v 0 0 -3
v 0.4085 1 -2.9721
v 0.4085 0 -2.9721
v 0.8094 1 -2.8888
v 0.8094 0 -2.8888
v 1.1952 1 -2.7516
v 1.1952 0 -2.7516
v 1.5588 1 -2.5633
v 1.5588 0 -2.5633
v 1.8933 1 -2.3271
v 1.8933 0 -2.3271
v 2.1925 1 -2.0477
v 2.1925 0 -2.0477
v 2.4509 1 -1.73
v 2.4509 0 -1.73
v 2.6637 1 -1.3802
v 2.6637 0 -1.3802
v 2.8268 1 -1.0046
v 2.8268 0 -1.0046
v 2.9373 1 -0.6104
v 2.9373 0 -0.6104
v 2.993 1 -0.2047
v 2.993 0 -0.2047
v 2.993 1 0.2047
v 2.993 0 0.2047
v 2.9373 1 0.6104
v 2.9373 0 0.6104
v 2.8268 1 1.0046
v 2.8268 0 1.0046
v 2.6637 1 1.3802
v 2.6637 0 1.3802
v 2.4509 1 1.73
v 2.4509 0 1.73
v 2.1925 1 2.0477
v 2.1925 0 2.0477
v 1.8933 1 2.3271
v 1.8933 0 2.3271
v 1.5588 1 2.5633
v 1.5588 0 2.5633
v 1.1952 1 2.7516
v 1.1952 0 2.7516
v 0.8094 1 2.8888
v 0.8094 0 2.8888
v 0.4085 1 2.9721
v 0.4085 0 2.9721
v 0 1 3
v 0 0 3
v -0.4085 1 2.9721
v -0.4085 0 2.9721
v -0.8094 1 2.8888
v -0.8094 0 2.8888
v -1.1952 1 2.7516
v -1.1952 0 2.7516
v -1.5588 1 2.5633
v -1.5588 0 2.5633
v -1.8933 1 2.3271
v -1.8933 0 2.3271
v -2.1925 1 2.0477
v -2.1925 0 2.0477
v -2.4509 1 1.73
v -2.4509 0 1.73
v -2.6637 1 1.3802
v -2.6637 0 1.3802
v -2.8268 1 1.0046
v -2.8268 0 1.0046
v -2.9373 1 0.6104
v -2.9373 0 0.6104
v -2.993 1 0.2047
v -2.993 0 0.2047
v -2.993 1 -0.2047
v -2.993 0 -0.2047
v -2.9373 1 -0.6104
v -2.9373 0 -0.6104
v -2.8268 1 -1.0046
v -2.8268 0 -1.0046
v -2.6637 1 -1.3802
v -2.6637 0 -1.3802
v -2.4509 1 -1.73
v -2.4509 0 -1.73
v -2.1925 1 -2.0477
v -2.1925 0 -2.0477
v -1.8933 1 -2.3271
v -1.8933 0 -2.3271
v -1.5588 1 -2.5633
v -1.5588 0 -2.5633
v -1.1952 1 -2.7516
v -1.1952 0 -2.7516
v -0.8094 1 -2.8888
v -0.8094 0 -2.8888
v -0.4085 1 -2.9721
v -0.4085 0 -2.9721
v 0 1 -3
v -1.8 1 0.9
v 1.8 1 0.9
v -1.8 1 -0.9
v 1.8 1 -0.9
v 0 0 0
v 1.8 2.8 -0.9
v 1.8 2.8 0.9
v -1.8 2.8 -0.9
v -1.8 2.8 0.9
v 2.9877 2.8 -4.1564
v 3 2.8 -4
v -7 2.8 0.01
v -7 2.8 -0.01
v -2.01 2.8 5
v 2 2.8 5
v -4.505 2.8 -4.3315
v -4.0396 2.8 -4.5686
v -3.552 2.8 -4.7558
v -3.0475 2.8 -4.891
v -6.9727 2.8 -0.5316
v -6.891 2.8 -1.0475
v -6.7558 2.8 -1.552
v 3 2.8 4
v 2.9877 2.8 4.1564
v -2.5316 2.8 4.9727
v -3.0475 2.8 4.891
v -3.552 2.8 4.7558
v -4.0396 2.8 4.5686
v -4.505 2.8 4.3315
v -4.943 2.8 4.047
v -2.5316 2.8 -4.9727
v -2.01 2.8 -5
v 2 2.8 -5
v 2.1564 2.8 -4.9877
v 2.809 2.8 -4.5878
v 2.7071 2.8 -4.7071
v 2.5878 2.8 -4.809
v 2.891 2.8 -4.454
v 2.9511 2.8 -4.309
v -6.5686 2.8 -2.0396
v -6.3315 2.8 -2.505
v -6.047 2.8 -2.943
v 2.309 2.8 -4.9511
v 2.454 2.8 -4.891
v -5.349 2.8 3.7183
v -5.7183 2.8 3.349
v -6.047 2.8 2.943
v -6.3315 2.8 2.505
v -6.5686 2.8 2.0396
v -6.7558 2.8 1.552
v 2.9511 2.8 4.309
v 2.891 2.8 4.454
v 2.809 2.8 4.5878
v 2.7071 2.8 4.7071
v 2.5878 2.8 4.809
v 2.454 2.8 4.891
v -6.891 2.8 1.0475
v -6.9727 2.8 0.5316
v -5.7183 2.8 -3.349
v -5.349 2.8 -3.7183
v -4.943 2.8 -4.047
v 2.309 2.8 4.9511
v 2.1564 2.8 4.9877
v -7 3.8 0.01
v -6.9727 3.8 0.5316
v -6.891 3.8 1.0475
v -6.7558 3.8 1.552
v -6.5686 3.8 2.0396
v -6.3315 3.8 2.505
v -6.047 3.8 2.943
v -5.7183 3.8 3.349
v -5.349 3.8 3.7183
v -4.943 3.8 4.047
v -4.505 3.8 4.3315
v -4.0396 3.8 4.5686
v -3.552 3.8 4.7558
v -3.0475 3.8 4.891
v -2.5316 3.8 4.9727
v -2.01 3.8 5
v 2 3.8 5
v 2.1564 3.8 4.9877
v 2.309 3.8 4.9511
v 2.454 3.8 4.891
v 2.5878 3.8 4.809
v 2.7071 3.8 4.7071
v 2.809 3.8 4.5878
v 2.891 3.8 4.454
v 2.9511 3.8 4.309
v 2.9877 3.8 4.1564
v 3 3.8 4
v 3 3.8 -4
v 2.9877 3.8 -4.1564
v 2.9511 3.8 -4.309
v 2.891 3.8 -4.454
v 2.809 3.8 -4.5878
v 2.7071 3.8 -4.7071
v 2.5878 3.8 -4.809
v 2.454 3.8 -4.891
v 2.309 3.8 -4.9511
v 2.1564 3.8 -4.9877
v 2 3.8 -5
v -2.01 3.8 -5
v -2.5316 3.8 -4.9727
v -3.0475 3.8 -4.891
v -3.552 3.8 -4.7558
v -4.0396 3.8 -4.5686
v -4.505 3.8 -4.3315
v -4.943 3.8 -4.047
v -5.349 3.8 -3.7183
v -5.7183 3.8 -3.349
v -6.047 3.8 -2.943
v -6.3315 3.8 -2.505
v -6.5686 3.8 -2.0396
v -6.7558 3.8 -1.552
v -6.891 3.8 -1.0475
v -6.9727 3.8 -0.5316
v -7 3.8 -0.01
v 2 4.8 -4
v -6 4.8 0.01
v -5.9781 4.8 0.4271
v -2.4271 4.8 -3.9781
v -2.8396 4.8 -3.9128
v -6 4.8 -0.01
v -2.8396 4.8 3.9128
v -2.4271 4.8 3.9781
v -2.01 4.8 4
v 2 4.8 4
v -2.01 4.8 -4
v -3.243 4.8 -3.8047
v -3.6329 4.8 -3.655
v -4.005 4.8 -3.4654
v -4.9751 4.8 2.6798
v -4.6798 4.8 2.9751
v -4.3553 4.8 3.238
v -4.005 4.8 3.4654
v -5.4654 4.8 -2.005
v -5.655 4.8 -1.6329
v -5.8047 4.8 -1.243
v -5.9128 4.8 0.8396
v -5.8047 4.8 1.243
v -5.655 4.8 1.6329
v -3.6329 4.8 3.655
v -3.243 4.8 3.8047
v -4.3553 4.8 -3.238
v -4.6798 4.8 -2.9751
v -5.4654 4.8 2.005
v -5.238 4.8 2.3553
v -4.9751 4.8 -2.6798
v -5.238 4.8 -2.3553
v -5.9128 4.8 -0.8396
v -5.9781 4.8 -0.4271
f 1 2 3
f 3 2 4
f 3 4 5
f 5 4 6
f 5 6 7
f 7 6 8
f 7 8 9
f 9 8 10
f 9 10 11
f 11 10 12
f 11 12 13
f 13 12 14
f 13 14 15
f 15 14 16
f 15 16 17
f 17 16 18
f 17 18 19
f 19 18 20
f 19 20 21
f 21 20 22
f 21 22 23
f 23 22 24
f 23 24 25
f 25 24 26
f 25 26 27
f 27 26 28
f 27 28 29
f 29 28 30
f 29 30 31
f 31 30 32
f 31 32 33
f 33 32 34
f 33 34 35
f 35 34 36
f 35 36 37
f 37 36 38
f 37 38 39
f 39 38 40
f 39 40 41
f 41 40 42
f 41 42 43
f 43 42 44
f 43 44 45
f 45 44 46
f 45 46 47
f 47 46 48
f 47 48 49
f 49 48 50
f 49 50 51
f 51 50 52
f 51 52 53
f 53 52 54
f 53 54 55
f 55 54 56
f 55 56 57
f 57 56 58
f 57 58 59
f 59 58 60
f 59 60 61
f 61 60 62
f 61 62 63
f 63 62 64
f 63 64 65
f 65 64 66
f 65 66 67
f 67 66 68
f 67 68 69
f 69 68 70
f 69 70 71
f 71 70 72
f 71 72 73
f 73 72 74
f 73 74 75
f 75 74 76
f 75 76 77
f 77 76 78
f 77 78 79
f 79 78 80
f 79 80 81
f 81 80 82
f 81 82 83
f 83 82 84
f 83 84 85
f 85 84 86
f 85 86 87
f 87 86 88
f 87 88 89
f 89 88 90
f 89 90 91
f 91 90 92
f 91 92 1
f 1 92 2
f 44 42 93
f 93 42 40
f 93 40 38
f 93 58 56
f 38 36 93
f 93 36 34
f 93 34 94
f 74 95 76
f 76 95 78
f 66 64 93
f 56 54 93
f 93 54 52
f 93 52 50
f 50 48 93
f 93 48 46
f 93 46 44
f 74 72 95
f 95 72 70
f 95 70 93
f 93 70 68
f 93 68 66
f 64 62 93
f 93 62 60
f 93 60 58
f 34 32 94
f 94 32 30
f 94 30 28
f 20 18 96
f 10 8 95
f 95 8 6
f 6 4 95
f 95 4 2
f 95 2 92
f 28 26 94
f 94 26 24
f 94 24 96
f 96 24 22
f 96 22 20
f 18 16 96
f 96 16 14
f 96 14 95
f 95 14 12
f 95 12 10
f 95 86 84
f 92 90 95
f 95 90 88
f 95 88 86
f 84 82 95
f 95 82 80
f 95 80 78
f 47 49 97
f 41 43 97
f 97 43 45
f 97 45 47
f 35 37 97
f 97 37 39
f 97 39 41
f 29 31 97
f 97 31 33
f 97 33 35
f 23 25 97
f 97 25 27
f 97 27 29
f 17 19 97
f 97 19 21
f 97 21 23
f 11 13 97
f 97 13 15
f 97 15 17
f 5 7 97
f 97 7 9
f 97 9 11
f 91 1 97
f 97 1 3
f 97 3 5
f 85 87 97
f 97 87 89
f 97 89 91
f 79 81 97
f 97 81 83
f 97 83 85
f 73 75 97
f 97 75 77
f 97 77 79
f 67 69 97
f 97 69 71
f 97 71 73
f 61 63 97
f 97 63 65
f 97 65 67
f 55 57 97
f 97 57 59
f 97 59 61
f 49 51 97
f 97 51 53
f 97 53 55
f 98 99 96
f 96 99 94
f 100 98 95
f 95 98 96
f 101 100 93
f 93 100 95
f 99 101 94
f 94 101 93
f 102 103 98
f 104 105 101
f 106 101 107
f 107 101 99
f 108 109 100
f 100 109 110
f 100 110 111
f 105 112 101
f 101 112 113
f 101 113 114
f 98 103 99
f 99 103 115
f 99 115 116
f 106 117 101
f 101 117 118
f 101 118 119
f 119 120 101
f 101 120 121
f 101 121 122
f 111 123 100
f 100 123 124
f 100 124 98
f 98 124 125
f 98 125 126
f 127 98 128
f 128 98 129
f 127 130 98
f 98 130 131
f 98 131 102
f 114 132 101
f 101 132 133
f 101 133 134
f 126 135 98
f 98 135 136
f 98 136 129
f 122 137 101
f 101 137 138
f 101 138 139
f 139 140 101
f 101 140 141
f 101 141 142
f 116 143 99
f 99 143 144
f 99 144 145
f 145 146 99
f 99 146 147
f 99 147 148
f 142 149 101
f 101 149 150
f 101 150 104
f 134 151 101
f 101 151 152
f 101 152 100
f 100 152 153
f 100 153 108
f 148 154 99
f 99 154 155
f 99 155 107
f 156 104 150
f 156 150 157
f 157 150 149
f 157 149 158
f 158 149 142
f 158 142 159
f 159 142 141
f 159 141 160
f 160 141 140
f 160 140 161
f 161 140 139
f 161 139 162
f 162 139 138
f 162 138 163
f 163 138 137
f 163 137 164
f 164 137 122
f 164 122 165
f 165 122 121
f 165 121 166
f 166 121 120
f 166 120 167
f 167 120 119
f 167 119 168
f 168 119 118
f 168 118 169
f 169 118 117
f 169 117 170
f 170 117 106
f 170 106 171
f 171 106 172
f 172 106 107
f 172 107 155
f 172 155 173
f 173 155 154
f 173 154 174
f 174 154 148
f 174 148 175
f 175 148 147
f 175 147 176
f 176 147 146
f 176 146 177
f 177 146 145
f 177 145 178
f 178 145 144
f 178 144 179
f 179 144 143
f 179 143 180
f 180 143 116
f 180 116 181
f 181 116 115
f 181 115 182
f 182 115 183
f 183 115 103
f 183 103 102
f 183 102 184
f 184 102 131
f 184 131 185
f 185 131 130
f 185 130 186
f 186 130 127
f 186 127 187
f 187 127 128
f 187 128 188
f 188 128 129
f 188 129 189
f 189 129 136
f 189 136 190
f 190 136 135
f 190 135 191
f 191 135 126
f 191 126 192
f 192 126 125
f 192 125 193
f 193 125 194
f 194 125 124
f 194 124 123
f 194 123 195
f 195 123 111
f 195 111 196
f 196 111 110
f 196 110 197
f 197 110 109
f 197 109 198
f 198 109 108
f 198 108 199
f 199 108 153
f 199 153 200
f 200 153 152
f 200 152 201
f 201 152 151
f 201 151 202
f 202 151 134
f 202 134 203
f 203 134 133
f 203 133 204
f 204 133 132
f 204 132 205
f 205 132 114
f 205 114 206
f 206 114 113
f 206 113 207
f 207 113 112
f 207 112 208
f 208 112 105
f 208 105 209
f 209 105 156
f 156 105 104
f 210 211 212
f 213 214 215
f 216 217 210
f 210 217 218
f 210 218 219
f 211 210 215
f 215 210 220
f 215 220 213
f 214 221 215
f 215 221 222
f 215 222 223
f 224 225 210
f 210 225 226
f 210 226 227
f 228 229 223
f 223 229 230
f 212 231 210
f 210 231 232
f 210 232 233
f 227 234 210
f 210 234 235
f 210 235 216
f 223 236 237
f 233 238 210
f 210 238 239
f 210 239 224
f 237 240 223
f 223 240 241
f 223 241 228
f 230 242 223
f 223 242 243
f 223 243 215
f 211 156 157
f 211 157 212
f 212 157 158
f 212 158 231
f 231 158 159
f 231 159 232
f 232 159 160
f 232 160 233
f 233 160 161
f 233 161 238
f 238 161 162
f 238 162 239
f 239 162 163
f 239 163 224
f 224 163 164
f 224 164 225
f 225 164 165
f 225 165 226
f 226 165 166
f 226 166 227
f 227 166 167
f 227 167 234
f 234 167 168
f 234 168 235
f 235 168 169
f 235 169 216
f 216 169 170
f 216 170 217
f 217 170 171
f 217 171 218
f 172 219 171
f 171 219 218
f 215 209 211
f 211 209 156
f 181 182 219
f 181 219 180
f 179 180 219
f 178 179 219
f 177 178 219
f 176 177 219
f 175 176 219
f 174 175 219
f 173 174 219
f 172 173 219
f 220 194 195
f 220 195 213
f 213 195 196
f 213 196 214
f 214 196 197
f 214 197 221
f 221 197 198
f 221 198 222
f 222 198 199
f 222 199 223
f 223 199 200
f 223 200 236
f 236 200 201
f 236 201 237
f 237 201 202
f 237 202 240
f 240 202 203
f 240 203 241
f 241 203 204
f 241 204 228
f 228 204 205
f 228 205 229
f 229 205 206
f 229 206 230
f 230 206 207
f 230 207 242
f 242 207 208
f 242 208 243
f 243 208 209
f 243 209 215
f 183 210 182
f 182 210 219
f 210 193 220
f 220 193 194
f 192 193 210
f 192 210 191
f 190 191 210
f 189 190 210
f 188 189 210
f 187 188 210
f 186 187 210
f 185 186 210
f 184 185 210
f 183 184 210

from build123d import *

# Parameters (mm, degrees)
SKETCH_1_R      = 3
EXTRUDE_1_DEPTH = 1
SKETCH_2_W      = 3.6
SKETCH_2_H      = 1.8
EXTRUDE_2_DEPTH = 1.8
EXTRUDE_3_DEPTH = 2
CHAMFER_1_SIZE  = 1


with BuildPart() as part:
    # 草图1 → 凸台-拉伸1 (new body)
    with BuildSketch(Plane(origin=(0, 0, 0), x_dir=(1, 0, 0), z_dir=(0, 1, 0))):
        with Locations(Location((0, 0, 0), (0, 0, 270))):
            Circle(SKETCH_1_R)
    extrude(amount=EXTRUDE_1_DEPTH)

    # 草图2 → 凸台-拉伸2 (add)
    with BuildSketch(Plane(origin=(0, 1, 0), x_dir=(1, 0, 0), z_dir=(0, 1, 0))):
        Rectangle(SKETCH_2_W, SKETCH_2_H)
    extrude(amount=EXTRUDE_2_DEPTH)

    # 草图3 → 凸台-拉伸3 (add)
    with BuildSketch(Plane(origin=(0, 2.8, 0), x_dir=(1, 0, 0), z_dir=(0, 1, 0))):
        with BuildLine():
            Line((2, 5), (-2.01, 5))
            ThreePointArc((-2.01, 5), (-5.538462838, 3.538462838), (-7, 0.01))
            Line((-7, 0.01), (-7, -0.01))
            ThreePointArc((-7, -0.01), (-5.538462838, -3.538462838), (-2.01, -5))
            Line((-2.01, -5), (2, -5))
            ThreePointArc((2, -5), (2.707106781, -4.707106781), (3, -4))
            Line((3, -4), (3, 4))
            ThreePointArc((3, 4), (2.707106781, 4.707106781), (2, 5))
        make_face()
    extrude(amount=EXTRUDE_3_DEPTH)

    # 倒角1
    chamfer_1_edges = [part.edges().sort_by_distance(p)[0] for p in [
        (-5.538462838, 4.8, 3.538462838),
        (-0.005, 4.8, 5),
        (2.707106781, 4.8, 4.707106781),
        (3, 4.8, 0),
        (2.707106781, 4.8, -4.707106781),
        (-0.005, 4.8, -5),
        (-5.538462838, 4.8, -3.538462838),
        (-7, 4.8, 0),
    ]]
    chamfer(chamfer_1_edges, length=CHAMFER_1_SIZE - 0.0001)  # a hair under: the kernel refuses the full size


solid = part.part
